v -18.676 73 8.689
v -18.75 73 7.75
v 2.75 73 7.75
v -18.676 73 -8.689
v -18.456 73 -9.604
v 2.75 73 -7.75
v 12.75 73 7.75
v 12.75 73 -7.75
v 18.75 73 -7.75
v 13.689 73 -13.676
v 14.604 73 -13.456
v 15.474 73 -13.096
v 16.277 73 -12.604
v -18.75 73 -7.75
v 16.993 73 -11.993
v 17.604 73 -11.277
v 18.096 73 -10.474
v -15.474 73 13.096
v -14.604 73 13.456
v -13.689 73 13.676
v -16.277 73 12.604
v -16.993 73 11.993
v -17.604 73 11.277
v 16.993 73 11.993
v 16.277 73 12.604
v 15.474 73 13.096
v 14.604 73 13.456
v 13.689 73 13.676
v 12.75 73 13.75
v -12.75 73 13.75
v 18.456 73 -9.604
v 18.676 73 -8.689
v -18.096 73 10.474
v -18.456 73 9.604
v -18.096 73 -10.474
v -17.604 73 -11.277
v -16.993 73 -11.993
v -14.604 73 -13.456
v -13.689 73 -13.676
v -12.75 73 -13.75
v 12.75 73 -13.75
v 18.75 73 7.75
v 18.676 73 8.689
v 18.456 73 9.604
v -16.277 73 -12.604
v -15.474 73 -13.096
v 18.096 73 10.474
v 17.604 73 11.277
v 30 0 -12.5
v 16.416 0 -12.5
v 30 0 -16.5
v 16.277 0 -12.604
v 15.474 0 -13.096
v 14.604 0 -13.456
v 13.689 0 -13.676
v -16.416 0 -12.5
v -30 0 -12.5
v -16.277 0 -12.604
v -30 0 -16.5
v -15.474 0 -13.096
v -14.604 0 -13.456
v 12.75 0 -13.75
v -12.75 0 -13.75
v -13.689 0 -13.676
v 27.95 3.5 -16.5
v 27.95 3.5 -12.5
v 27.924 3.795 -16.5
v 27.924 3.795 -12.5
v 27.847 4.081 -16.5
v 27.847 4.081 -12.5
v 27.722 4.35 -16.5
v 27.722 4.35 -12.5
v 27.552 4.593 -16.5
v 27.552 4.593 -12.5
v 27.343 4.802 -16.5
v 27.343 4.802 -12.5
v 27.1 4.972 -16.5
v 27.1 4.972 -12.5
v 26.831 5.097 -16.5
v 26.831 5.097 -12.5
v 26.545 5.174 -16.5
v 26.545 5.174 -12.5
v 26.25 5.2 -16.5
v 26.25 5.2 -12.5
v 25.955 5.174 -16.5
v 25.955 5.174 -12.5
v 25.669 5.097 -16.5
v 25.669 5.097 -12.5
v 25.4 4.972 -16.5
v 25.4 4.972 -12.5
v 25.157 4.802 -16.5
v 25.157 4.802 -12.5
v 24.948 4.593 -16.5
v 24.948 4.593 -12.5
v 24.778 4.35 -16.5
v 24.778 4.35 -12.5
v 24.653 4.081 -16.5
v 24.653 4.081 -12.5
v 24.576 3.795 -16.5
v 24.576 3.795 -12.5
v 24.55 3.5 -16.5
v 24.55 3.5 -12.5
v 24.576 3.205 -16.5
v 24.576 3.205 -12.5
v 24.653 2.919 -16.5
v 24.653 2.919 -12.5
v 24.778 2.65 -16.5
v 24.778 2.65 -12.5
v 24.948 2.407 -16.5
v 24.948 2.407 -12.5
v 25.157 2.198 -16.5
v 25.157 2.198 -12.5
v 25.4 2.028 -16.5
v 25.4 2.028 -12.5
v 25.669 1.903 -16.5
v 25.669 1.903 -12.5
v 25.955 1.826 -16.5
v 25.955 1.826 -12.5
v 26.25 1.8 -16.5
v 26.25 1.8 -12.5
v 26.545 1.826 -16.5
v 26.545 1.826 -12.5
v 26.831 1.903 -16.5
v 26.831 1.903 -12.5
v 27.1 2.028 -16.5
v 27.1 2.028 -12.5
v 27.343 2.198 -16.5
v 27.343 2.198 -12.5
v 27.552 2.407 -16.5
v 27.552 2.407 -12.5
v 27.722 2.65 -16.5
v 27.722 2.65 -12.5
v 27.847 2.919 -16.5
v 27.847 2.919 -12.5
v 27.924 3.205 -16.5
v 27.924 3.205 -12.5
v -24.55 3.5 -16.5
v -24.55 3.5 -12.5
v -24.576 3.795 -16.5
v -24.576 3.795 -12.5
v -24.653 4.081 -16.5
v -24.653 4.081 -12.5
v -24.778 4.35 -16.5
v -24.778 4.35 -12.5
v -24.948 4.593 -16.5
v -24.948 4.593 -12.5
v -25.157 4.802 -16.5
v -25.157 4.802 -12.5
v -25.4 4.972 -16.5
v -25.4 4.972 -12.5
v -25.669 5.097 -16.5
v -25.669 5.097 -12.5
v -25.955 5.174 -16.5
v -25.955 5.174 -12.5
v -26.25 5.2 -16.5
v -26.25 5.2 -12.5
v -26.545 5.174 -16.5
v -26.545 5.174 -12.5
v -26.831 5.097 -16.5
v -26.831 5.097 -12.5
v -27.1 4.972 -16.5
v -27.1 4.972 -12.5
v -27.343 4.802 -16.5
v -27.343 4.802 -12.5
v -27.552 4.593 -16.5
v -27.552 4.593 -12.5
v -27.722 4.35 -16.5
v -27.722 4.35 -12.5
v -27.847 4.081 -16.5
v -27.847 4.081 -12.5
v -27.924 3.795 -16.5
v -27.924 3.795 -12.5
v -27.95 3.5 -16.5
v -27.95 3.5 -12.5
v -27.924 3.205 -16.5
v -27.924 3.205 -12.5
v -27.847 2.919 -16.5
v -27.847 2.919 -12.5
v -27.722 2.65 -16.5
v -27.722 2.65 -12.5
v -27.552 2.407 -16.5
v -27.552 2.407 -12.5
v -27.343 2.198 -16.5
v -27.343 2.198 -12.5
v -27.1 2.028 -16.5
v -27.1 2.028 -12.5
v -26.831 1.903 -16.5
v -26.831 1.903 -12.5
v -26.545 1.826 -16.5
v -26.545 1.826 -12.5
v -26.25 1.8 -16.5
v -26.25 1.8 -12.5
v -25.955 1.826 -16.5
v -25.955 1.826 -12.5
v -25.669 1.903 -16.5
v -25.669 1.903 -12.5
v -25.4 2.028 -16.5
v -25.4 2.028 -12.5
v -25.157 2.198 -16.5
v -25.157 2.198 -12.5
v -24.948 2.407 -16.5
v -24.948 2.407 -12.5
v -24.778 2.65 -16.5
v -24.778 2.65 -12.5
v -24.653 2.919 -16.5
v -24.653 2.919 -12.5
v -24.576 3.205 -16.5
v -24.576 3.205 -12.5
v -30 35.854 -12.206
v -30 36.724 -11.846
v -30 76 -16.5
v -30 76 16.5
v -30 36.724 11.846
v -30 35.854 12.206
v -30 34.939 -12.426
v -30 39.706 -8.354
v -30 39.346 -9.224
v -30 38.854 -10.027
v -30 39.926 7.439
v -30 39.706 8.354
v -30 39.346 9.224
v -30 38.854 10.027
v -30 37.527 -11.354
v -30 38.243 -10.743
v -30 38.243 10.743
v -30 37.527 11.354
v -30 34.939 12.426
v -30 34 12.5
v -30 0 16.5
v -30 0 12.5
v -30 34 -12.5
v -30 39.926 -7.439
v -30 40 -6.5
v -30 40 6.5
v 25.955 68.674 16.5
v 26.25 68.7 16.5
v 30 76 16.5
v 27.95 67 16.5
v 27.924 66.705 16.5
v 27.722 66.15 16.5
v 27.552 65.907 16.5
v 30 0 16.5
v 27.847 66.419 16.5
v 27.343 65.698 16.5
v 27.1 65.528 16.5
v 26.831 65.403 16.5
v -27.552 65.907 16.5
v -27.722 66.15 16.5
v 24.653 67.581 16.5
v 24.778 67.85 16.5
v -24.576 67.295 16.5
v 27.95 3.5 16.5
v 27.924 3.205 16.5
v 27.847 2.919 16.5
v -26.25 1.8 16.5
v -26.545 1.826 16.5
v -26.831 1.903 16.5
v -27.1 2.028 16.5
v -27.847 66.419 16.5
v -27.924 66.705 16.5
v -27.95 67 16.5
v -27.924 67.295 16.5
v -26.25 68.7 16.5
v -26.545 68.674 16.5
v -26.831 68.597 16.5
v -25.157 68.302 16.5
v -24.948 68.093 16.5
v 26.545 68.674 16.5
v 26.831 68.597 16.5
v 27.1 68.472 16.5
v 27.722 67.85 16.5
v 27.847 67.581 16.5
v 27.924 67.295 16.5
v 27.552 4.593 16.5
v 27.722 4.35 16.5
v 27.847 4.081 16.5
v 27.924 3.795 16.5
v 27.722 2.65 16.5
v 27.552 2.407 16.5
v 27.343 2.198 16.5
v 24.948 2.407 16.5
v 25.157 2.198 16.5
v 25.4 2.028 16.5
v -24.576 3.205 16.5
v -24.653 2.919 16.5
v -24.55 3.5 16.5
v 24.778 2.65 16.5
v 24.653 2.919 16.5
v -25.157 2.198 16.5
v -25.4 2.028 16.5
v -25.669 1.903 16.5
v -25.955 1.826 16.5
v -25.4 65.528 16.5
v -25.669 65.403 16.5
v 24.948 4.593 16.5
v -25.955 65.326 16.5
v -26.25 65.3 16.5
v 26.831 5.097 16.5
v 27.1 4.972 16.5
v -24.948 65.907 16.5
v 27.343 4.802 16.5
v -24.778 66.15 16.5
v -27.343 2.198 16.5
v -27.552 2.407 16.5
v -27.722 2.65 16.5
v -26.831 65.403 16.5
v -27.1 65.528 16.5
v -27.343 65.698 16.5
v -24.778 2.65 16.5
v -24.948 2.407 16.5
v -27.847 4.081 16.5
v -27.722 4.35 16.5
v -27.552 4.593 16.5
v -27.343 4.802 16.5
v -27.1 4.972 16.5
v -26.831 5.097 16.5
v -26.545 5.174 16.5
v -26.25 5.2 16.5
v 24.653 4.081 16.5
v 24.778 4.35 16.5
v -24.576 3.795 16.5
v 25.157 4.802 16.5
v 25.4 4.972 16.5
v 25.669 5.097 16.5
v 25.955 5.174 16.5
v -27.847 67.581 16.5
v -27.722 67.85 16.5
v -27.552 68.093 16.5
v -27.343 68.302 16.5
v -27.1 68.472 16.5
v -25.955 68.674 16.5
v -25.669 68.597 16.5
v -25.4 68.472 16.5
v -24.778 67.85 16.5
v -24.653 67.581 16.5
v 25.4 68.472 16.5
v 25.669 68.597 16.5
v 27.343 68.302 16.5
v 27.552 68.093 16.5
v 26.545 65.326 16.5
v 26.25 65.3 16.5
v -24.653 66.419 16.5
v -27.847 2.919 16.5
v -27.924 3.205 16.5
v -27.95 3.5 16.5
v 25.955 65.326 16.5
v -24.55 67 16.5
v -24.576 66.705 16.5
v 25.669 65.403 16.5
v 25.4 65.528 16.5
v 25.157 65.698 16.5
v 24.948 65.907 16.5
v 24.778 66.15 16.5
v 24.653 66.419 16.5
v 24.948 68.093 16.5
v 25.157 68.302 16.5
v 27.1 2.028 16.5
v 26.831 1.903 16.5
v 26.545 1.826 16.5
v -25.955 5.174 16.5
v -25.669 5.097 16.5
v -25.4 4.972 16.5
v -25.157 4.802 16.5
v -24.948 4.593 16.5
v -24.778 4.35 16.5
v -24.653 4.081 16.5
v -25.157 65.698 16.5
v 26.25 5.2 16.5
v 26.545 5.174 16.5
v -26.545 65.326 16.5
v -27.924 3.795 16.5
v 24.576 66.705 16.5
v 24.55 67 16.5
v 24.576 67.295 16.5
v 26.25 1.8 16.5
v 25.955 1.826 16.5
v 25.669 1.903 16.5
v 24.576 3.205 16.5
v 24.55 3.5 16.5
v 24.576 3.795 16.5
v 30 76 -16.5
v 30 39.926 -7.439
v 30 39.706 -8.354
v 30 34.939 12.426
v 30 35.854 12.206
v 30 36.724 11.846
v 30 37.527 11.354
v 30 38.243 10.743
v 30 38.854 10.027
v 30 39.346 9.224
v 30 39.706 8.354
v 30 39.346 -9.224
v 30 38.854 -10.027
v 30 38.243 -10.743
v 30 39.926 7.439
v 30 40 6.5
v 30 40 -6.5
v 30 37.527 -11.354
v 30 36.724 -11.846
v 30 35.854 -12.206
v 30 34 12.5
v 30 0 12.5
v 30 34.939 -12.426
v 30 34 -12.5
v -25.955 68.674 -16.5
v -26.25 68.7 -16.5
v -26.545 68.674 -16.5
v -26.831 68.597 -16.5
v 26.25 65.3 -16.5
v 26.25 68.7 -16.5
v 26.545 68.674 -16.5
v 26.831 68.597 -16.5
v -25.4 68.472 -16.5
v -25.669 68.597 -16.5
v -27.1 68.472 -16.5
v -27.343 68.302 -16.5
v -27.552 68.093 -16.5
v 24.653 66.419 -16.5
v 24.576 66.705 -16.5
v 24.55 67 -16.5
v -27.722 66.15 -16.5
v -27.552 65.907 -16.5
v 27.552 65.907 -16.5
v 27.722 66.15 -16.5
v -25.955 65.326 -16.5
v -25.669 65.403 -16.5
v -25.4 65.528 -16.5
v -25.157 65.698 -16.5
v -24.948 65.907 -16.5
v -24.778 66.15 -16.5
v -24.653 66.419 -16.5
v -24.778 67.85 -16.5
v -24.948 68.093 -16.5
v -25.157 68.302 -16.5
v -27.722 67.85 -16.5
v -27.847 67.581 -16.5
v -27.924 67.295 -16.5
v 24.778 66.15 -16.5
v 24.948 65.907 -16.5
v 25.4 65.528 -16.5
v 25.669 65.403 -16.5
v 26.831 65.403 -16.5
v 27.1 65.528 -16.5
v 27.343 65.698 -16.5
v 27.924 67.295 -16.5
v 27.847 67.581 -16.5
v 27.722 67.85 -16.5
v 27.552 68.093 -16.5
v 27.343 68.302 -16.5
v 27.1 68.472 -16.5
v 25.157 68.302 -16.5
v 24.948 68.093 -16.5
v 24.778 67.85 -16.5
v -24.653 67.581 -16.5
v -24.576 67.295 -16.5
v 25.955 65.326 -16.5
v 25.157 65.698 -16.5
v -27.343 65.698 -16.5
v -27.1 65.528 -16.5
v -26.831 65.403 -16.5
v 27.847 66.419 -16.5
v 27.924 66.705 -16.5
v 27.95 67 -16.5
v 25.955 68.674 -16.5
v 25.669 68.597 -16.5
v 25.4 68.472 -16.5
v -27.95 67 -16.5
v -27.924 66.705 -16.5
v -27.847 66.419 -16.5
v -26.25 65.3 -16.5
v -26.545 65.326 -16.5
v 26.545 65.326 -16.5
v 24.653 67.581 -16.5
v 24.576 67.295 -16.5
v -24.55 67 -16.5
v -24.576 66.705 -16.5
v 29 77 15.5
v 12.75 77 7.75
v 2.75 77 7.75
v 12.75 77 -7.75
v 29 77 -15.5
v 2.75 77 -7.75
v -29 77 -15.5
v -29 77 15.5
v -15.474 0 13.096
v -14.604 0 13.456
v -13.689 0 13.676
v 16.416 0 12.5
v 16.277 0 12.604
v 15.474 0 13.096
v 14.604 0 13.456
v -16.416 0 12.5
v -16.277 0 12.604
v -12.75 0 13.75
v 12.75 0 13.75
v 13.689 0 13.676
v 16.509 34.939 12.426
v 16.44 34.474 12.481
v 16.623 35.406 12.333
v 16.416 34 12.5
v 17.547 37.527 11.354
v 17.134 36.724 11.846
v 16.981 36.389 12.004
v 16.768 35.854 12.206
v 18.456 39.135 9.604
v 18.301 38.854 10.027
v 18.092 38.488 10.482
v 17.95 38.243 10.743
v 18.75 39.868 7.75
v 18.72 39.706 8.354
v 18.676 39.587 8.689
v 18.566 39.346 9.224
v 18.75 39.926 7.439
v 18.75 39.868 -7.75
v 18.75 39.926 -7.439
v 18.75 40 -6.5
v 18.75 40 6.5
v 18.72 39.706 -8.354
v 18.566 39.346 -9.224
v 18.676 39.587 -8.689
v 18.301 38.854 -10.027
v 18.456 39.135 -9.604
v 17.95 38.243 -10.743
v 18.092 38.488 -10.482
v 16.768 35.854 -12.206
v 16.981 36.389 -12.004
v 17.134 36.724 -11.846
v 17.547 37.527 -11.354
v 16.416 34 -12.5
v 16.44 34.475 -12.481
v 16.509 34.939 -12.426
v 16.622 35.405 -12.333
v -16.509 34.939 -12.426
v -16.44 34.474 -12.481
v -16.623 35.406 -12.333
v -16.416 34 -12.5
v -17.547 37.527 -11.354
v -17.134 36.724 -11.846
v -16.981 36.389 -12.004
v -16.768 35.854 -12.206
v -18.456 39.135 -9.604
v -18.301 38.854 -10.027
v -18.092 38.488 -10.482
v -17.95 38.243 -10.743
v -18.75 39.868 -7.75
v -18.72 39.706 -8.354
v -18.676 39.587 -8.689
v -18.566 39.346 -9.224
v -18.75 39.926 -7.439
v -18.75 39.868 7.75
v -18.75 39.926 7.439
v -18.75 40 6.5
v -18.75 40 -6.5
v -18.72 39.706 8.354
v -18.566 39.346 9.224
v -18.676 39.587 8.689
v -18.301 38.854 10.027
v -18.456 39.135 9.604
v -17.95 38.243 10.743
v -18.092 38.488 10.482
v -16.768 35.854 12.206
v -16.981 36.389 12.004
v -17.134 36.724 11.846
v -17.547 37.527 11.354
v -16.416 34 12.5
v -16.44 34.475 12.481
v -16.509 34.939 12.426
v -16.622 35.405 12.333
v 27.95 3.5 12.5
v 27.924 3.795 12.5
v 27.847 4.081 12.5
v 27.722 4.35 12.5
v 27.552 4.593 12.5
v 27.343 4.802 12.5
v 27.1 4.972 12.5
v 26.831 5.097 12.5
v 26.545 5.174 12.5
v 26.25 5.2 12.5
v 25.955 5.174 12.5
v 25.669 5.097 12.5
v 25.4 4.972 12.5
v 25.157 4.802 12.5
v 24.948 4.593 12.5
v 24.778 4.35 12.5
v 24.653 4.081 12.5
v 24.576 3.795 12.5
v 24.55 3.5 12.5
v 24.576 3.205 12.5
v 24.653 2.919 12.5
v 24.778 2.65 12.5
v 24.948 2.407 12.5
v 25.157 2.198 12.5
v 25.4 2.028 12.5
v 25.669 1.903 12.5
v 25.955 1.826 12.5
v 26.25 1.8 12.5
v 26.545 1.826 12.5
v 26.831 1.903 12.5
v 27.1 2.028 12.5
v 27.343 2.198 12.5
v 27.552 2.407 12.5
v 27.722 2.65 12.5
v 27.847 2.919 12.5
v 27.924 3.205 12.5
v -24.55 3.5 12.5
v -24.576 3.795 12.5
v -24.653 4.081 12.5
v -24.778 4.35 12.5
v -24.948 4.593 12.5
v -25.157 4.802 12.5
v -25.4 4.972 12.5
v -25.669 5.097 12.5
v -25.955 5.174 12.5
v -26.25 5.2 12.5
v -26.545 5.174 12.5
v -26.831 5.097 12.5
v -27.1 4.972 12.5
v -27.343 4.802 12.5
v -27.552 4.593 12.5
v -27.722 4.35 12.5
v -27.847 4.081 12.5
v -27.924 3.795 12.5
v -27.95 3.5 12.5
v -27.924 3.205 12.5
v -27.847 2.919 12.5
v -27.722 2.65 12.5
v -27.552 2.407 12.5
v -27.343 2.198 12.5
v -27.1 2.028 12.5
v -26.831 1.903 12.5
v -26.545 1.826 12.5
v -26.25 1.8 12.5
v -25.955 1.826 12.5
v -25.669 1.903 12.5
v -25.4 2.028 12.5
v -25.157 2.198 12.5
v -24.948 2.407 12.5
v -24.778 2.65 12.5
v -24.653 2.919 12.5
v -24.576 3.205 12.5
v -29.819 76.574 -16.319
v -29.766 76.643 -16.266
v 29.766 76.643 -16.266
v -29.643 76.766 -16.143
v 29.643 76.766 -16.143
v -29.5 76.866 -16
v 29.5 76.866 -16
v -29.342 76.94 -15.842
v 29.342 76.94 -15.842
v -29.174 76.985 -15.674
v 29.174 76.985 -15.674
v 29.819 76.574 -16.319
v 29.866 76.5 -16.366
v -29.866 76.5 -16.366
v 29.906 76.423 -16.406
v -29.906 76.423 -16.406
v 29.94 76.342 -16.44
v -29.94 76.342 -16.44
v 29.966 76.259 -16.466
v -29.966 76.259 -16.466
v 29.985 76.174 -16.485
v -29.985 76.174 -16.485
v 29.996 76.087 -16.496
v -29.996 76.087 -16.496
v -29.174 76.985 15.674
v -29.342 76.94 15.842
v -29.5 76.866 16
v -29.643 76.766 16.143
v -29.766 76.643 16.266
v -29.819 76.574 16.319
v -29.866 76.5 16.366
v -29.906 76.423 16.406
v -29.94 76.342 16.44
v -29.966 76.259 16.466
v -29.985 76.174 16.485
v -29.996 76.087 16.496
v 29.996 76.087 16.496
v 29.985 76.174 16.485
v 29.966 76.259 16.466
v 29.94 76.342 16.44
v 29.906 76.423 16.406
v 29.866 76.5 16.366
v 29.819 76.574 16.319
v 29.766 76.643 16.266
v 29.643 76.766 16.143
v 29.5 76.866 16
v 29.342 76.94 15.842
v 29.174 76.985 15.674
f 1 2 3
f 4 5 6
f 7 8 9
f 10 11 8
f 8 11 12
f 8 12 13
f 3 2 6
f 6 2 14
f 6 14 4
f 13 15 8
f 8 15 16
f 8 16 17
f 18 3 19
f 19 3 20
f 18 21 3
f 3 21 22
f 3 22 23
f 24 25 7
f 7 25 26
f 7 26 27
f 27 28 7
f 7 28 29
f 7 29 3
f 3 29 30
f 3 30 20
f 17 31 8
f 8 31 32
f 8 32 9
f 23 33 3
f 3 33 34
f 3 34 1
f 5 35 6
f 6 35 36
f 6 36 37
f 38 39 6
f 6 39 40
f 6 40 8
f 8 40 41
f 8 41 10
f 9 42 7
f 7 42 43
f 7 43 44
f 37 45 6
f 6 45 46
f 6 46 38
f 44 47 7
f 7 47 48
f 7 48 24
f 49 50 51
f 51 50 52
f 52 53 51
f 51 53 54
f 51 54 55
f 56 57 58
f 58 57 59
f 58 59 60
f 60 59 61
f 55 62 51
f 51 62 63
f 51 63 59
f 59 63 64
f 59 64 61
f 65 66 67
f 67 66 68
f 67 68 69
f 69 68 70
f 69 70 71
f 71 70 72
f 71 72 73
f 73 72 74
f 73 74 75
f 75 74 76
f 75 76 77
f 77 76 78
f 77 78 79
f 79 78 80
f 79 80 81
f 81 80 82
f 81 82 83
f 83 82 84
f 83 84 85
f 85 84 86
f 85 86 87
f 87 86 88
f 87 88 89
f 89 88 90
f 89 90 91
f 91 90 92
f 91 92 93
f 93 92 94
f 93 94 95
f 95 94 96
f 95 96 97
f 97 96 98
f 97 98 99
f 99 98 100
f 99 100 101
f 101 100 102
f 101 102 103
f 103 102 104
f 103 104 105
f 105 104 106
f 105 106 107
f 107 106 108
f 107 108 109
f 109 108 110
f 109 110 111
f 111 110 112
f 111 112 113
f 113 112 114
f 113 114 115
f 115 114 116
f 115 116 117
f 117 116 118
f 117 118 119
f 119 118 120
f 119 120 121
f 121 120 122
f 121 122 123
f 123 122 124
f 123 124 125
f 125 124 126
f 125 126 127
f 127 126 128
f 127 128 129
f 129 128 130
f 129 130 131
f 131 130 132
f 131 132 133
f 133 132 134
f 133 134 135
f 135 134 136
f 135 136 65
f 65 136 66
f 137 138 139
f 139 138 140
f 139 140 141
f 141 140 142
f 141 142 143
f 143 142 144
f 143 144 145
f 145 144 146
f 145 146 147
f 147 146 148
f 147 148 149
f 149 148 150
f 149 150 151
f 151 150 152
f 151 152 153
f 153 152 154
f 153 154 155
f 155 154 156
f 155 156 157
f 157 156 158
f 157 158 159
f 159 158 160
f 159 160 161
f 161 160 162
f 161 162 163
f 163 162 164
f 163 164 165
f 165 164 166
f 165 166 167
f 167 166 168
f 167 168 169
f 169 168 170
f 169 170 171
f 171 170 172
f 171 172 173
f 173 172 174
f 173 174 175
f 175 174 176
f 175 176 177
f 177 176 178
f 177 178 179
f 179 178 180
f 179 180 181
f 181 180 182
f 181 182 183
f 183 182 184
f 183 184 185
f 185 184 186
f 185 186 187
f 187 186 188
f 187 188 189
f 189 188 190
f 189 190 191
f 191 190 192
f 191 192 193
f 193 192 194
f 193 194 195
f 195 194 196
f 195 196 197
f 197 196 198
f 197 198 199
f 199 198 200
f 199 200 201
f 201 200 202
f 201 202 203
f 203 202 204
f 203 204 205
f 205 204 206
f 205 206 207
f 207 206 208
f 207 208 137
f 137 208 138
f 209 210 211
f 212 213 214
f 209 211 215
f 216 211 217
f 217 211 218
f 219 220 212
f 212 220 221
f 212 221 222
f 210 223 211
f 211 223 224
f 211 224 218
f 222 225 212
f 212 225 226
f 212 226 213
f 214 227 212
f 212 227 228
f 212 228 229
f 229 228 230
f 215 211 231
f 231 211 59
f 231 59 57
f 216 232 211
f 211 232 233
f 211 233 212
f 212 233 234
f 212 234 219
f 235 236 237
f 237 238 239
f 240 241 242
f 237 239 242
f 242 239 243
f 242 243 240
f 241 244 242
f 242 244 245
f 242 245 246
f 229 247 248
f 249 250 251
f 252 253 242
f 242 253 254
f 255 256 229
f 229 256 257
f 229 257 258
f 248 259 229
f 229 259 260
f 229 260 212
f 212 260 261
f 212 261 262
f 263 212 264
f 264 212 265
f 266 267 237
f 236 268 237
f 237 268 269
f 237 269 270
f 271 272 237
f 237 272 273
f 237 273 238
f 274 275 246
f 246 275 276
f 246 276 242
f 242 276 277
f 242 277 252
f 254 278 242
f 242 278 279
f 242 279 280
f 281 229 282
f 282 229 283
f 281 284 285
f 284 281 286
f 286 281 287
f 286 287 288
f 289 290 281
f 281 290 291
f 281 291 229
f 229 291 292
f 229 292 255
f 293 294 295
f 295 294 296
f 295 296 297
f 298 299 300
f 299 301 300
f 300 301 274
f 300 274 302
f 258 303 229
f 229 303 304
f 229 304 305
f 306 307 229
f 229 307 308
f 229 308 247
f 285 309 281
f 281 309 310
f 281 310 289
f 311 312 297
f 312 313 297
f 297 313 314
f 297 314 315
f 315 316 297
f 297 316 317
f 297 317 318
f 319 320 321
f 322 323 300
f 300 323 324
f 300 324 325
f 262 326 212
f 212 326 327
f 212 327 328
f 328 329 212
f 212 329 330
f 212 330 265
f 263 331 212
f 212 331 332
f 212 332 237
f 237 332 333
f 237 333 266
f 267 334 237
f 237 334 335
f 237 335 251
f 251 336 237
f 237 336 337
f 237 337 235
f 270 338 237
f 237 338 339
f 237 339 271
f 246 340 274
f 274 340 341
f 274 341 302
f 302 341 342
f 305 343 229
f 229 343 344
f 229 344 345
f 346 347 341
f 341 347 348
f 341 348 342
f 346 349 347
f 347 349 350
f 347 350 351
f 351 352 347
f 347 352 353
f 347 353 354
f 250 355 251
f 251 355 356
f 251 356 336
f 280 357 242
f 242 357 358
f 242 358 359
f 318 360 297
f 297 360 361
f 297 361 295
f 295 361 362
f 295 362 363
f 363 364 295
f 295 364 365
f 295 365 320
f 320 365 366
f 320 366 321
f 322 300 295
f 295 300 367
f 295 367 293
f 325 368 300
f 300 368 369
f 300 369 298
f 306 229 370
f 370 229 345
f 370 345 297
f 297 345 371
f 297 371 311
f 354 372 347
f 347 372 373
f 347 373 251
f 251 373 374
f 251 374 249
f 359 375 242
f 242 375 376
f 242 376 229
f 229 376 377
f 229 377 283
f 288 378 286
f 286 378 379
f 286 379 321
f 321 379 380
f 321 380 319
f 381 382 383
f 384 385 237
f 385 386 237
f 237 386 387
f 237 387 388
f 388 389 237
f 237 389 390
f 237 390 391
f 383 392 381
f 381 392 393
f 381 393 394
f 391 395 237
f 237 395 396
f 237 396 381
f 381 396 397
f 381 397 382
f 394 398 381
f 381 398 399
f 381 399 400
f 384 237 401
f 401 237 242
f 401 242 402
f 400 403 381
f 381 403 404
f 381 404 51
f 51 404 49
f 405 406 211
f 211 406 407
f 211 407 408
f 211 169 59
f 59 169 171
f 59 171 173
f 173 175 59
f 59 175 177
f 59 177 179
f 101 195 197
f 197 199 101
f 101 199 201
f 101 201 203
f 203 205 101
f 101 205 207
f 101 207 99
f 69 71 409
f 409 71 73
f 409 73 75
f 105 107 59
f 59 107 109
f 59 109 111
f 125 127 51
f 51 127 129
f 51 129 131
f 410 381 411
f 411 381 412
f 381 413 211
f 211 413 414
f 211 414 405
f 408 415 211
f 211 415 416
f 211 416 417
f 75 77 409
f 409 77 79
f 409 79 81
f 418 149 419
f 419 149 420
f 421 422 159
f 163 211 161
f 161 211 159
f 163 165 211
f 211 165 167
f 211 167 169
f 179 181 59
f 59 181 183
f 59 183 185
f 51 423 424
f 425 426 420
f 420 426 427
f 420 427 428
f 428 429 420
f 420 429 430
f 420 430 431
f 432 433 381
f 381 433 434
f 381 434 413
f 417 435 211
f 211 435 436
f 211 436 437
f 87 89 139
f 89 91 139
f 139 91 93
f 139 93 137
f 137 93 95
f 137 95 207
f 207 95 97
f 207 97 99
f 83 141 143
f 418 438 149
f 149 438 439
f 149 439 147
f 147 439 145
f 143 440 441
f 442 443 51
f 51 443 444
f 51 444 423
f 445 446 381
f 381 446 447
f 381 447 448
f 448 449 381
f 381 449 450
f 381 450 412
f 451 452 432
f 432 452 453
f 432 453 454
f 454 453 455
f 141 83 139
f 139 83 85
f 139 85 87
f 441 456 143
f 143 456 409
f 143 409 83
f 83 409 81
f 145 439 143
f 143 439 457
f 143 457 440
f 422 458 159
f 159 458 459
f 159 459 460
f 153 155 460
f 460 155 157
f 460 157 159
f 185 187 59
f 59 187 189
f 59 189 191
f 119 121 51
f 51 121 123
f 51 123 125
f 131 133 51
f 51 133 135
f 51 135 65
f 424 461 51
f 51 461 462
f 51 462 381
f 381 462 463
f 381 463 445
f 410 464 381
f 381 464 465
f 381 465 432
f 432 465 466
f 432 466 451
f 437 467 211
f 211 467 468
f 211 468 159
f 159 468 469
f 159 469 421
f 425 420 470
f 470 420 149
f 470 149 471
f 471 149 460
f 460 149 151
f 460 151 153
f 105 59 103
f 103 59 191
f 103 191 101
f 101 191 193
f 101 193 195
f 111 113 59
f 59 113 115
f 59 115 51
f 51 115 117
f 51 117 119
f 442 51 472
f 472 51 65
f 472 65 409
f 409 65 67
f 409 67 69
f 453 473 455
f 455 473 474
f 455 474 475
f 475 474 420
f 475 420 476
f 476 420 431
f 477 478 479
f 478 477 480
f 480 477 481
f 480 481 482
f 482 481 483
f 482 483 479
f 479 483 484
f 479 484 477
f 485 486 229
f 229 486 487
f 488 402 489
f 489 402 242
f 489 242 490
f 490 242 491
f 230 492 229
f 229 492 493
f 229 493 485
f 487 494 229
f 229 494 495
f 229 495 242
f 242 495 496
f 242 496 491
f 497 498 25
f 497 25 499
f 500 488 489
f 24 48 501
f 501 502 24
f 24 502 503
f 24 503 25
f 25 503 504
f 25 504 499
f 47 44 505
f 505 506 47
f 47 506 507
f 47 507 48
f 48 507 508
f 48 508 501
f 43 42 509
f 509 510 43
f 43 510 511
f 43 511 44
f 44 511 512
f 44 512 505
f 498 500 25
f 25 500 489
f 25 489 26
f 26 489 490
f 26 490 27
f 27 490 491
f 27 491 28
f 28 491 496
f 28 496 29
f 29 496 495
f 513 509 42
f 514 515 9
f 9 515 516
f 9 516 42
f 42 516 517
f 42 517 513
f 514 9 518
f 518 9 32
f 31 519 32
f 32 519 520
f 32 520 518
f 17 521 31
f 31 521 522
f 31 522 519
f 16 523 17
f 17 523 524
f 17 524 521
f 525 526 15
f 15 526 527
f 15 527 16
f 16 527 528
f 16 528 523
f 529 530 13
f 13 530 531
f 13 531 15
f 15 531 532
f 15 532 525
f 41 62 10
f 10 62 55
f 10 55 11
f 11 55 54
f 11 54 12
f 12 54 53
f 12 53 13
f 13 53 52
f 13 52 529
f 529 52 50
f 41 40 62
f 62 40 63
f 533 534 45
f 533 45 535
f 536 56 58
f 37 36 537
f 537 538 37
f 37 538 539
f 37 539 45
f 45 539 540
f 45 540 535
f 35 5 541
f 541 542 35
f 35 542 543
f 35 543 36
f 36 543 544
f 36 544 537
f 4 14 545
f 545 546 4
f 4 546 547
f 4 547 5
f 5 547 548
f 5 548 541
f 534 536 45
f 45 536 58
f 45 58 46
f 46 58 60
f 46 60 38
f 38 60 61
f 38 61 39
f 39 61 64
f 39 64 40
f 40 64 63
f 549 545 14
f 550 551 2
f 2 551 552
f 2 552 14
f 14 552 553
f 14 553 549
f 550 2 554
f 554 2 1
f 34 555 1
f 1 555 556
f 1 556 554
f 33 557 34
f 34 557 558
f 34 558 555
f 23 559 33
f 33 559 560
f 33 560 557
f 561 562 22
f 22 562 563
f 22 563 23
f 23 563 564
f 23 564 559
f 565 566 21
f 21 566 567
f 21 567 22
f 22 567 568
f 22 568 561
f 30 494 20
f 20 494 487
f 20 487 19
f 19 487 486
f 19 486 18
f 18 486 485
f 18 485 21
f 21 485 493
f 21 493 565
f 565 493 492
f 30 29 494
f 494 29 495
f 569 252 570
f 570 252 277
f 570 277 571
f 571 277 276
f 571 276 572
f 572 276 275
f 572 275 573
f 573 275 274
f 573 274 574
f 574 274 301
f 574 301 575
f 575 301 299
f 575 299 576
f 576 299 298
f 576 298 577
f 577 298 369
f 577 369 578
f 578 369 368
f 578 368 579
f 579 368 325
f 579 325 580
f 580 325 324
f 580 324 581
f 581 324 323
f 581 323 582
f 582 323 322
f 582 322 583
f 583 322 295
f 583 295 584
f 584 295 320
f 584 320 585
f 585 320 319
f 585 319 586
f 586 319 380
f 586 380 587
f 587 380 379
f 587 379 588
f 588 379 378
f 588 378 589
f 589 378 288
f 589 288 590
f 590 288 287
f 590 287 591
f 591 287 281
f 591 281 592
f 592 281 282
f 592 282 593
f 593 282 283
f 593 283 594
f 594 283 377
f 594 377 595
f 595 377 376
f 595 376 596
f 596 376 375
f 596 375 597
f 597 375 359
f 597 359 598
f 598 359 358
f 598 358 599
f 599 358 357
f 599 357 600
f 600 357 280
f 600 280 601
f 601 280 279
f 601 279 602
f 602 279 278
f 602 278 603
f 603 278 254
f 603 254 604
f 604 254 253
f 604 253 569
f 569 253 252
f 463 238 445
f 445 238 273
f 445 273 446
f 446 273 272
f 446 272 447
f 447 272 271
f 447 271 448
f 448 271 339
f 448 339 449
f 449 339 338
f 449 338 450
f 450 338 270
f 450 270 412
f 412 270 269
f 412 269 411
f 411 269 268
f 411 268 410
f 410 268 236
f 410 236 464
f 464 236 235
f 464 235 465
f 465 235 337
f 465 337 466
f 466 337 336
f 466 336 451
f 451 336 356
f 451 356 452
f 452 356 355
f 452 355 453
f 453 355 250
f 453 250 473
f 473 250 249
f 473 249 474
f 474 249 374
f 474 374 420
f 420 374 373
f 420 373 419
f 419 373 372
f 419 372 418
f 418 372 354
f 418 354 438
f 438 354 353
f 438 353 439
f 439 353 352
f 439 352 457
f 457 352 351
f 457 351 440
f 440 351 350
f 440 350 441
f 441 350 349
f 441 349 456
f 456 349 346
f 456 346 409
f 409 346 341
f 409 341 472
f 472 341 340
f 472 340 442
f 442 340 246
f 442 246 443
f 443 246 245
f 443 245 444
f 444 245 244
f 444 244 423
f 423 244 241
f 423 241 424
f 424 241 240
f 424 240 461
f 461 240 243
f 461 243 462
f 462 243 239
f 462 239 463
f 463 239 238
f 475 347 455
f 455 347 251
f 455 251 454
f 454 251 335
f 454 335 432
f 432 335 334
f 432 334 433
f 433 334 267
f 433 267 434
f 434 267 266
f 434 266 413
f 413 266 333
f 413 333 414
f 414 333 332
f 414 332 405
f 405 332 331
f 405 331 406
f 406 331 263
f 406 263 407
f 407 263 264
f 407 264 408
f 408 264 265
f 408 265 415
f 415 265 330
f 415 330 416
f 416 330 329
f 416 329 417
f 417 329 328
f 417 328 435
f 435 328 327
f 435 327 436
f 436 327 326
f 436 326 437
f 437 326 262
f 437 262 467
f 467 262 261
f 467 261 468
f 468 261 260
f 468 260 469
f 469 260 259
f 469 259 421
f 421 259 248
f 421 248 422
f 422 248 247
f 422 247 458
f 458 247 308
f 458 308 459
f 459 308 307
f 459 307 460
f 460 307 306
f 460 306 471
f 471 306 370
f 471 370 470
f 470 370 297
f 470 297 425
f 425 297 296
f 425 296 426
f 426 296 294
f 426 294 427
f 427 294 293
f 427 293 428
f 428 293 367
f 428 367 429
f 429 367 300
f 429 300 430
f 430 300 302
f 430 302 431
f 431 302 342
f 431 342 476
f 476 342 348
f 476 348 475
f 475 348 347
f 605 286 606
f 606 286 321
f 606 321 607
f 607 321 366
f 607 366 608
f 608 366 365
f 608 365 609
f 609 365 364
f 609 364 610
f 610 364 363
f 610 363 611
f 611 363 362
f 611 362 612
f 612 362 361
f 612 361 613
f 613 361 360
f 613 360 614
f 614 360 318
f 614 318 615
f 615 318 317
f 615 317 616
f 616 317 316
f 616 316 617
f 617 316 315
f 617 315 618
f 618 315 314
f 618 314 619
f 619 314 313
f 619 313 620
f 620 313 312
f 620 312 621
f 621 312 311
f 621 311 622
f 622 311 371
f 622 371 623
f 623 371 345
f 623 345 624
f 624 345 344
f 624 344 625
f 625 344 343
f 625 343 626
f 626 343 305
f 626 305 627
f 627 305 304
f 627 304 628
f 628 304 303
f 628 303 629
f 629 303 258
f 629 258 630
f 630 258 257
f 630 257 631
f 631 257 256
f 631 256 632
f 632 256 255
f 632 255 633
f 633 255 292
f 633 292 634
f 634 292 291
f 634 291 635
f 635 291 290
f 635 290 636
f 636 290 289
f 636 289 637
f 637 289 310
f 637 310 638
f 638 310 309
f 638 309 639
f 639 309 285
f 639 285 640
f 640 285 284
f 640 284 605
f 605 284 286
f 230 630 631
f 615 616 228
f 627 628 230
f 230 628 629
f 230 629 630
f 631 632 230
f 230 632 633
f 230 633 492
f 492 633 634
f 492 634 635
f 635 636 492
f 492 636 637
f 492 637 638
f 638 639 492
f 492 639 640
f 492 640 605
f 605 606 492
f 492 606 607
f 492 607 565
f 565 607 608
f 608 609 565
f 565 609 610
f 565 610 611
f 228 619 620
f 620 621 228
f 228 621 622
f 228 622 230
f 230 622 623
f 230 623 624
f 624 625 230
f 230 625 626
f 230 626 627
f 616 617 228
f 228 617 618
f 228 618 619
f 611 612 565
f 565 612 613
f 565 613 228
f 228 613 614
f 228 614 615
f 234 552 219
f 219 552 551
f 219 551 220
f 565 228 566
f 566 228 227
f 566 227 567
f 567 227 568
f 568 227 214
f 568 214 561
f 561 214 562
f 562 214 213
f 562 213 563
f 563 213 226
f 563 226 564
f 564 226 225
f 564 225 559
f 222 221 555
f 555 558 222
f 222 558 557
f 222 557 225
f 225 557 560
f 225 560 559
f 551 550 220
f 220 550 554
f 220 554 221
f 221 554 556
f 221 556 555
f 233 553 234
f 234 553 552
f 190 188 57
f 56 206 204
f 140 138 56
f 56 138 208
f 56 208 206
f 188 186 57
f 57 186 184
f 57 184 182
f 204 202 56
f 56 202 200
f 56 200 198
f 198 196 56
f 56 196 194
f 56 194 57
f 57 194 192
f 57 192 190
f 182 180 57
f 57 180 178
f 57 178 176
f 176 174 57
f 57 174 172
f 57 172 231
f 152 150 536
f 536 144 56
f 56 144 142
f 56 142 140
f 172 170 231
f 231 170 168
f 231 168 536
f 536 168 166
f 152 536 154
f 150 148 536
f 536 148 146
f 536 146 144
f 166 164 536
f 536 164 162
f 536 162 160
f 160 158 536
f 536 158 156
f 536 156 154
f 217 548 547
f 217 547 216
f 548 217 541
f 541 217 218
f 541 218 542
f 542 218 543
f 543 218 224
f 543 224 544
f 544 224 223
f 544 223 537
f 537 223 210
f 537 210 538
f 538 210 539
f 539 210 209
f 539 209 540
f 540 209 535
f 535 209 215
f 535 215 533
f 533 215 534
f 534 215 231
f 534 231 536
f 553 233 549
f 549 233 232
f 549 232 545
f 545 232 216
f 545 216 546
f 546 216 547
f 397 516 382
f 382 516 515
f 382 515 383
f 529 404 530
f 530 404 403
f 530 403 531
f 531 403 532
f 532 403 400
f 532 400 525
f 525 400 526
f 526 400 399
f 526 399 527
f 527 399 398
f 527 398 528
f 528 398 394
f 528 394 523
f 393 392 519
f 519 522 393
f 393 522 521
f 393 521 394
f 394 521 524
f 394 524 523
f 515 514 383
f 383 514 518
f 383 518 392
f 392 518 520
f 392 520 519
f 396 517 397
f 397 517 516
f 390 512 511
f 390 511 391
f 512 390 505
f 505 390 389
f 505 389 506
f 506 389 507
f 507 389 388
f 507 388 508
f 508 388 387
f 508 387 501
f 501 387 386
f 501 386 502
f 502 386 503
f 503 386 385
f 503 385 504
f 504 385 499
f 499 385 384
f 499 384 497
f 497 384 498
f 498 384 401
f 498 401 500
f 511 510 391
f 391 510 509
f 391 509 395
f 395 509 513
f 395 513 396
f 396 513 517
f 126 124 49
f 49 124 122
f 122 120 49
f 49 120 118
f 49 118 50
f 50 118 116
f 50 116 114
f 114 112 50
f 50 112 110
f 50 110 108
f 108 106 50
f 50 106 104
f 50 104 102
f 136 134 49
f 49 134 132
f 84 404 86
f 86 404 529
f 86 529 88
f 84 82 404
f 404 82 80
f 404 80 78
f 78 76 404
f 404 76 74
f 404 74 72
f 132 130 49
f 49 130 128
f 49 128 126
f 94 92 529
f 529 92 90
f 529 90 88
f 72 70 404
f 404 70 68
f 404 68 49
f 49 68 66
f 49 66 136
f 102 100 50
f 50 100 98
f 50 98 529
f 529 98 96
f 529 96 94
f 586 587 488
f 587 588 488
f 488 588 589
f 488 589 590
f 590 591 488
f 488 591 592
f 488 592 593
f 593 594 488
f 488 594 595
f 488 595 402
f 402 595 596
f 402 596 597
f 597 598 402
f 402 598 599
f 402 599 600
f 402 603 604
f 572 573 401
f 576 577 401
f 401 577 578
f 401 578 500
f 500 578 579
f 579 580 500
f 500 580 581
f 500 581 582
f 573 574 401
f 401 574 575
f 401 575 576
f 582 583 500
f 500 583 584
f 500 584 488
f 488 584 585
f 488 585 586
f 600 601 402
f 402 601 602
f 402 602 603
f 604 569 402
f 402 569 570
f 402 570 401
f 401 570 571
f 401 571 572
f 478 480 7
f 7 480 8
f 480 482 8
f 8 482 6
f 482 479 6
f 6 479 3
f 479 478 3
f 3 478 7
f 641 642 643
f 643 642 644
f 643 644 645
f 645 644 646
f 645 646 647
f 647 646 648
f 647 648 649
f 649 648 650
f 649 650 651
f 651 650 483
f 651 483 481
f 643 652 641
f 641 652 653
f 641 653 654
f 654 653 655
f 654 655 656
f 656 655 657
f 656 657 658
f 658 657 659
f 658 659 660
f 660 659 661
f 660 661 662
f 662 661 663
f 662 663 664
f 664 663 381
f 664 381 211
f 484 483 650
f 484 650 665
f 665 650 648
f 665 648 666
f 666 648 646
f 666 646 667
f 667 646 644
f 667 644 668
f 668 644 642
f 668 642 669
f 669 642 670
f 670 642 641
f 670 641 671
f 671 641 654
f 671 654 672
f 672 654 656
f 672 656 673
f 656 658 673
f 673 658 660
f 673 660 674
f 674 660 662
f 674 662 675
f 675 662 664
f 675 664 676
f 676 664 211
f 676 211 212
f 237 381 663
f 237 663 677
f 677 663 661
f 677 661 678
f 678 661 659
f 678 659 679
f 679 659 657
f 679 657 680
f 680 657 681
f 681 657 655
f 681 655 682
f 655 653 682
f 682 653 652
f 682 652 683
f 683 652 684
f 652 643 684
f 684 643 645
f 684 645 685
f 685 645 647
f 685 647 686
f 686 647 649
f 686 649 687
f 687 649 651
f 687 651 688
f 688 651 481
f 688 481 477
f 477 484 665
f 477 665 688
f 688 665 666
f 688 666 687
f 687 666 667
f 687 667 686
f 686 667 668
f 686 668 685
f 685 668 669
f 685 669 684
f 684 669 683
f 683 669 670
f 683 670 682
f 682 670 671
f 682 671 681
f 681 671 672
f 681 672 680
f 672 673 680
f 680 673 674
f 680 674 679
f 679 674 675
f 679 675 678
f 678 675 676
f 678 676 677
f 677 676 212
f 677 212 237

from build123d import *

# Parameters (mm, degrees)
SKETCH_1_W          = 60
SKETCH_1_H          = 33
EXTRUDE_1_DEPTH     = 77
CUT_EXTRUDE_1_DEPTH = 73
SKETCH_3_R          = 1.7
CUT_EXTRUDE_2_DEPTH = 34
CUT_EXTRUDE_3_DEPTH = 61
SKETCH_5_W          = 10
SKETCH_5_H          = 15.5
CUT_EXTRUDE_4_DEPTH = 5
FILLET_1_R          = 1


with BuildPart() as part:
    # ｽｹｯﾁ1 → ﾎﾞｽ - 押し出し1 (new body)
    with BuildSketch(Plane(origin=(0, 0, 0), x_dir=(1, 0, 0), z_dir=(0, 1, 0))):
        Rectangle(SKETCH_1_W, SKETCH_1_H)
    extrude(amount=EXTRUDE_1_DEPTH)

    # ｽｹｯﾁ2 → ｶｯﾄ - 押し出し1 (cut)
    with BuildSketch(Plane.XZ):
        with BuildLine():
            Line((12.75, 13.75), (-12.75, 13.75))
            ThreePointArc((-12.75, 13.75), (-16.992640687, 11.992640687), (-18.75, 7.75))
            Line((-18.75, 7.75), (-18.75, -7.75))
            ThreePointArc((-18.75, -7.75), (-16.992640687, -11.992640687), (-12.75, -13.75))
            Line((-12.75, -13.75), (12.75, -13.75))
            ThreePointArc((12.75, -13.75), (16.992640687, -11.992640687), (18.75, -7.75))
            Line((18.75, -7.75), (18.75, 7.75))
            ThreePointArc((18.75, 7.75), (16.992640687, 11.992640687), (12.75, 13.75))
        make_face()
    extrude(amount=-CUT_EXTRUDE_1_DEPTH, mode=Mode.SUBTRACT)

    # ｽｹｯﾁ3 → ｶｯﾄ - 押し出し2 (cut, through all)
    with BuildSketch(Plane.XY.offset(16.5)):
        with Locations((26.25, 3.5)):
            Circle(SKETCH_3_R)
        with Locations((26.25, 67)):
            Circle(SKETCH_3_R)
        with Locations((-26.25, 67)):
            Circle(SKETCH_3_R)
        with Locations((-26.25, 3.5)):
            Circle(SKETCH_3_R)
    extrude(amount=-CUT_EXTRUDE_2_DEPTH, mode=Mode.SUBTRACT)

    # ｽｹｯﾁ4 → ｶｯﾄ - 押し出し3 (cut, through all)
    with BuildSketch(Plane.ZY.offset(30)):
        with BuildLine():
            Line((6.5, 40), (-6.5, 40))
            ThreePointArc((-6.5, 40), (-10.742640687, 38.242640687), (-12.5, 34))
            Line((-12.5, 34), (-12.5, 0))
            Line((-12.5, 0), (12.5, 0))
            Line((12.5, 0), (12.5, 34))
            ThreePointArc((12.5, 34), (10.742640687, 38.242640687), (6.5, 40))
        make_face()
    extrude(amount=-CUT_EXTRUDE_3_DEPTH, mode=Mode.SUBTRACT)

    # ｽｹｯﾁ5 → ｶｯﾄ - 押し出し4 (cut, through all)
    with BuildSketch(Plane.XZ.offset(-73)):
        with Locations((7.75, 0)):
            Rectangle(SKETCH_5_W, SKETCH_5_H)
    extrude(amount=-CUT_EXTRUDE_4_DEPTH, mode=Mode.SUBTRACT)

    # ﾌｨﾚｯﾄ1
    fillet_1_edges = [part.edges().sort_by_distance(p)[0] for p in [
        (30, 77, 0),
        (0, 77, -16.5),
        (-30, 77, 0),
        (0, 77, 16.5),
    ]]
    fillet(fillet_1_edges, radius=FILLET_1_R)


solid = part.part
